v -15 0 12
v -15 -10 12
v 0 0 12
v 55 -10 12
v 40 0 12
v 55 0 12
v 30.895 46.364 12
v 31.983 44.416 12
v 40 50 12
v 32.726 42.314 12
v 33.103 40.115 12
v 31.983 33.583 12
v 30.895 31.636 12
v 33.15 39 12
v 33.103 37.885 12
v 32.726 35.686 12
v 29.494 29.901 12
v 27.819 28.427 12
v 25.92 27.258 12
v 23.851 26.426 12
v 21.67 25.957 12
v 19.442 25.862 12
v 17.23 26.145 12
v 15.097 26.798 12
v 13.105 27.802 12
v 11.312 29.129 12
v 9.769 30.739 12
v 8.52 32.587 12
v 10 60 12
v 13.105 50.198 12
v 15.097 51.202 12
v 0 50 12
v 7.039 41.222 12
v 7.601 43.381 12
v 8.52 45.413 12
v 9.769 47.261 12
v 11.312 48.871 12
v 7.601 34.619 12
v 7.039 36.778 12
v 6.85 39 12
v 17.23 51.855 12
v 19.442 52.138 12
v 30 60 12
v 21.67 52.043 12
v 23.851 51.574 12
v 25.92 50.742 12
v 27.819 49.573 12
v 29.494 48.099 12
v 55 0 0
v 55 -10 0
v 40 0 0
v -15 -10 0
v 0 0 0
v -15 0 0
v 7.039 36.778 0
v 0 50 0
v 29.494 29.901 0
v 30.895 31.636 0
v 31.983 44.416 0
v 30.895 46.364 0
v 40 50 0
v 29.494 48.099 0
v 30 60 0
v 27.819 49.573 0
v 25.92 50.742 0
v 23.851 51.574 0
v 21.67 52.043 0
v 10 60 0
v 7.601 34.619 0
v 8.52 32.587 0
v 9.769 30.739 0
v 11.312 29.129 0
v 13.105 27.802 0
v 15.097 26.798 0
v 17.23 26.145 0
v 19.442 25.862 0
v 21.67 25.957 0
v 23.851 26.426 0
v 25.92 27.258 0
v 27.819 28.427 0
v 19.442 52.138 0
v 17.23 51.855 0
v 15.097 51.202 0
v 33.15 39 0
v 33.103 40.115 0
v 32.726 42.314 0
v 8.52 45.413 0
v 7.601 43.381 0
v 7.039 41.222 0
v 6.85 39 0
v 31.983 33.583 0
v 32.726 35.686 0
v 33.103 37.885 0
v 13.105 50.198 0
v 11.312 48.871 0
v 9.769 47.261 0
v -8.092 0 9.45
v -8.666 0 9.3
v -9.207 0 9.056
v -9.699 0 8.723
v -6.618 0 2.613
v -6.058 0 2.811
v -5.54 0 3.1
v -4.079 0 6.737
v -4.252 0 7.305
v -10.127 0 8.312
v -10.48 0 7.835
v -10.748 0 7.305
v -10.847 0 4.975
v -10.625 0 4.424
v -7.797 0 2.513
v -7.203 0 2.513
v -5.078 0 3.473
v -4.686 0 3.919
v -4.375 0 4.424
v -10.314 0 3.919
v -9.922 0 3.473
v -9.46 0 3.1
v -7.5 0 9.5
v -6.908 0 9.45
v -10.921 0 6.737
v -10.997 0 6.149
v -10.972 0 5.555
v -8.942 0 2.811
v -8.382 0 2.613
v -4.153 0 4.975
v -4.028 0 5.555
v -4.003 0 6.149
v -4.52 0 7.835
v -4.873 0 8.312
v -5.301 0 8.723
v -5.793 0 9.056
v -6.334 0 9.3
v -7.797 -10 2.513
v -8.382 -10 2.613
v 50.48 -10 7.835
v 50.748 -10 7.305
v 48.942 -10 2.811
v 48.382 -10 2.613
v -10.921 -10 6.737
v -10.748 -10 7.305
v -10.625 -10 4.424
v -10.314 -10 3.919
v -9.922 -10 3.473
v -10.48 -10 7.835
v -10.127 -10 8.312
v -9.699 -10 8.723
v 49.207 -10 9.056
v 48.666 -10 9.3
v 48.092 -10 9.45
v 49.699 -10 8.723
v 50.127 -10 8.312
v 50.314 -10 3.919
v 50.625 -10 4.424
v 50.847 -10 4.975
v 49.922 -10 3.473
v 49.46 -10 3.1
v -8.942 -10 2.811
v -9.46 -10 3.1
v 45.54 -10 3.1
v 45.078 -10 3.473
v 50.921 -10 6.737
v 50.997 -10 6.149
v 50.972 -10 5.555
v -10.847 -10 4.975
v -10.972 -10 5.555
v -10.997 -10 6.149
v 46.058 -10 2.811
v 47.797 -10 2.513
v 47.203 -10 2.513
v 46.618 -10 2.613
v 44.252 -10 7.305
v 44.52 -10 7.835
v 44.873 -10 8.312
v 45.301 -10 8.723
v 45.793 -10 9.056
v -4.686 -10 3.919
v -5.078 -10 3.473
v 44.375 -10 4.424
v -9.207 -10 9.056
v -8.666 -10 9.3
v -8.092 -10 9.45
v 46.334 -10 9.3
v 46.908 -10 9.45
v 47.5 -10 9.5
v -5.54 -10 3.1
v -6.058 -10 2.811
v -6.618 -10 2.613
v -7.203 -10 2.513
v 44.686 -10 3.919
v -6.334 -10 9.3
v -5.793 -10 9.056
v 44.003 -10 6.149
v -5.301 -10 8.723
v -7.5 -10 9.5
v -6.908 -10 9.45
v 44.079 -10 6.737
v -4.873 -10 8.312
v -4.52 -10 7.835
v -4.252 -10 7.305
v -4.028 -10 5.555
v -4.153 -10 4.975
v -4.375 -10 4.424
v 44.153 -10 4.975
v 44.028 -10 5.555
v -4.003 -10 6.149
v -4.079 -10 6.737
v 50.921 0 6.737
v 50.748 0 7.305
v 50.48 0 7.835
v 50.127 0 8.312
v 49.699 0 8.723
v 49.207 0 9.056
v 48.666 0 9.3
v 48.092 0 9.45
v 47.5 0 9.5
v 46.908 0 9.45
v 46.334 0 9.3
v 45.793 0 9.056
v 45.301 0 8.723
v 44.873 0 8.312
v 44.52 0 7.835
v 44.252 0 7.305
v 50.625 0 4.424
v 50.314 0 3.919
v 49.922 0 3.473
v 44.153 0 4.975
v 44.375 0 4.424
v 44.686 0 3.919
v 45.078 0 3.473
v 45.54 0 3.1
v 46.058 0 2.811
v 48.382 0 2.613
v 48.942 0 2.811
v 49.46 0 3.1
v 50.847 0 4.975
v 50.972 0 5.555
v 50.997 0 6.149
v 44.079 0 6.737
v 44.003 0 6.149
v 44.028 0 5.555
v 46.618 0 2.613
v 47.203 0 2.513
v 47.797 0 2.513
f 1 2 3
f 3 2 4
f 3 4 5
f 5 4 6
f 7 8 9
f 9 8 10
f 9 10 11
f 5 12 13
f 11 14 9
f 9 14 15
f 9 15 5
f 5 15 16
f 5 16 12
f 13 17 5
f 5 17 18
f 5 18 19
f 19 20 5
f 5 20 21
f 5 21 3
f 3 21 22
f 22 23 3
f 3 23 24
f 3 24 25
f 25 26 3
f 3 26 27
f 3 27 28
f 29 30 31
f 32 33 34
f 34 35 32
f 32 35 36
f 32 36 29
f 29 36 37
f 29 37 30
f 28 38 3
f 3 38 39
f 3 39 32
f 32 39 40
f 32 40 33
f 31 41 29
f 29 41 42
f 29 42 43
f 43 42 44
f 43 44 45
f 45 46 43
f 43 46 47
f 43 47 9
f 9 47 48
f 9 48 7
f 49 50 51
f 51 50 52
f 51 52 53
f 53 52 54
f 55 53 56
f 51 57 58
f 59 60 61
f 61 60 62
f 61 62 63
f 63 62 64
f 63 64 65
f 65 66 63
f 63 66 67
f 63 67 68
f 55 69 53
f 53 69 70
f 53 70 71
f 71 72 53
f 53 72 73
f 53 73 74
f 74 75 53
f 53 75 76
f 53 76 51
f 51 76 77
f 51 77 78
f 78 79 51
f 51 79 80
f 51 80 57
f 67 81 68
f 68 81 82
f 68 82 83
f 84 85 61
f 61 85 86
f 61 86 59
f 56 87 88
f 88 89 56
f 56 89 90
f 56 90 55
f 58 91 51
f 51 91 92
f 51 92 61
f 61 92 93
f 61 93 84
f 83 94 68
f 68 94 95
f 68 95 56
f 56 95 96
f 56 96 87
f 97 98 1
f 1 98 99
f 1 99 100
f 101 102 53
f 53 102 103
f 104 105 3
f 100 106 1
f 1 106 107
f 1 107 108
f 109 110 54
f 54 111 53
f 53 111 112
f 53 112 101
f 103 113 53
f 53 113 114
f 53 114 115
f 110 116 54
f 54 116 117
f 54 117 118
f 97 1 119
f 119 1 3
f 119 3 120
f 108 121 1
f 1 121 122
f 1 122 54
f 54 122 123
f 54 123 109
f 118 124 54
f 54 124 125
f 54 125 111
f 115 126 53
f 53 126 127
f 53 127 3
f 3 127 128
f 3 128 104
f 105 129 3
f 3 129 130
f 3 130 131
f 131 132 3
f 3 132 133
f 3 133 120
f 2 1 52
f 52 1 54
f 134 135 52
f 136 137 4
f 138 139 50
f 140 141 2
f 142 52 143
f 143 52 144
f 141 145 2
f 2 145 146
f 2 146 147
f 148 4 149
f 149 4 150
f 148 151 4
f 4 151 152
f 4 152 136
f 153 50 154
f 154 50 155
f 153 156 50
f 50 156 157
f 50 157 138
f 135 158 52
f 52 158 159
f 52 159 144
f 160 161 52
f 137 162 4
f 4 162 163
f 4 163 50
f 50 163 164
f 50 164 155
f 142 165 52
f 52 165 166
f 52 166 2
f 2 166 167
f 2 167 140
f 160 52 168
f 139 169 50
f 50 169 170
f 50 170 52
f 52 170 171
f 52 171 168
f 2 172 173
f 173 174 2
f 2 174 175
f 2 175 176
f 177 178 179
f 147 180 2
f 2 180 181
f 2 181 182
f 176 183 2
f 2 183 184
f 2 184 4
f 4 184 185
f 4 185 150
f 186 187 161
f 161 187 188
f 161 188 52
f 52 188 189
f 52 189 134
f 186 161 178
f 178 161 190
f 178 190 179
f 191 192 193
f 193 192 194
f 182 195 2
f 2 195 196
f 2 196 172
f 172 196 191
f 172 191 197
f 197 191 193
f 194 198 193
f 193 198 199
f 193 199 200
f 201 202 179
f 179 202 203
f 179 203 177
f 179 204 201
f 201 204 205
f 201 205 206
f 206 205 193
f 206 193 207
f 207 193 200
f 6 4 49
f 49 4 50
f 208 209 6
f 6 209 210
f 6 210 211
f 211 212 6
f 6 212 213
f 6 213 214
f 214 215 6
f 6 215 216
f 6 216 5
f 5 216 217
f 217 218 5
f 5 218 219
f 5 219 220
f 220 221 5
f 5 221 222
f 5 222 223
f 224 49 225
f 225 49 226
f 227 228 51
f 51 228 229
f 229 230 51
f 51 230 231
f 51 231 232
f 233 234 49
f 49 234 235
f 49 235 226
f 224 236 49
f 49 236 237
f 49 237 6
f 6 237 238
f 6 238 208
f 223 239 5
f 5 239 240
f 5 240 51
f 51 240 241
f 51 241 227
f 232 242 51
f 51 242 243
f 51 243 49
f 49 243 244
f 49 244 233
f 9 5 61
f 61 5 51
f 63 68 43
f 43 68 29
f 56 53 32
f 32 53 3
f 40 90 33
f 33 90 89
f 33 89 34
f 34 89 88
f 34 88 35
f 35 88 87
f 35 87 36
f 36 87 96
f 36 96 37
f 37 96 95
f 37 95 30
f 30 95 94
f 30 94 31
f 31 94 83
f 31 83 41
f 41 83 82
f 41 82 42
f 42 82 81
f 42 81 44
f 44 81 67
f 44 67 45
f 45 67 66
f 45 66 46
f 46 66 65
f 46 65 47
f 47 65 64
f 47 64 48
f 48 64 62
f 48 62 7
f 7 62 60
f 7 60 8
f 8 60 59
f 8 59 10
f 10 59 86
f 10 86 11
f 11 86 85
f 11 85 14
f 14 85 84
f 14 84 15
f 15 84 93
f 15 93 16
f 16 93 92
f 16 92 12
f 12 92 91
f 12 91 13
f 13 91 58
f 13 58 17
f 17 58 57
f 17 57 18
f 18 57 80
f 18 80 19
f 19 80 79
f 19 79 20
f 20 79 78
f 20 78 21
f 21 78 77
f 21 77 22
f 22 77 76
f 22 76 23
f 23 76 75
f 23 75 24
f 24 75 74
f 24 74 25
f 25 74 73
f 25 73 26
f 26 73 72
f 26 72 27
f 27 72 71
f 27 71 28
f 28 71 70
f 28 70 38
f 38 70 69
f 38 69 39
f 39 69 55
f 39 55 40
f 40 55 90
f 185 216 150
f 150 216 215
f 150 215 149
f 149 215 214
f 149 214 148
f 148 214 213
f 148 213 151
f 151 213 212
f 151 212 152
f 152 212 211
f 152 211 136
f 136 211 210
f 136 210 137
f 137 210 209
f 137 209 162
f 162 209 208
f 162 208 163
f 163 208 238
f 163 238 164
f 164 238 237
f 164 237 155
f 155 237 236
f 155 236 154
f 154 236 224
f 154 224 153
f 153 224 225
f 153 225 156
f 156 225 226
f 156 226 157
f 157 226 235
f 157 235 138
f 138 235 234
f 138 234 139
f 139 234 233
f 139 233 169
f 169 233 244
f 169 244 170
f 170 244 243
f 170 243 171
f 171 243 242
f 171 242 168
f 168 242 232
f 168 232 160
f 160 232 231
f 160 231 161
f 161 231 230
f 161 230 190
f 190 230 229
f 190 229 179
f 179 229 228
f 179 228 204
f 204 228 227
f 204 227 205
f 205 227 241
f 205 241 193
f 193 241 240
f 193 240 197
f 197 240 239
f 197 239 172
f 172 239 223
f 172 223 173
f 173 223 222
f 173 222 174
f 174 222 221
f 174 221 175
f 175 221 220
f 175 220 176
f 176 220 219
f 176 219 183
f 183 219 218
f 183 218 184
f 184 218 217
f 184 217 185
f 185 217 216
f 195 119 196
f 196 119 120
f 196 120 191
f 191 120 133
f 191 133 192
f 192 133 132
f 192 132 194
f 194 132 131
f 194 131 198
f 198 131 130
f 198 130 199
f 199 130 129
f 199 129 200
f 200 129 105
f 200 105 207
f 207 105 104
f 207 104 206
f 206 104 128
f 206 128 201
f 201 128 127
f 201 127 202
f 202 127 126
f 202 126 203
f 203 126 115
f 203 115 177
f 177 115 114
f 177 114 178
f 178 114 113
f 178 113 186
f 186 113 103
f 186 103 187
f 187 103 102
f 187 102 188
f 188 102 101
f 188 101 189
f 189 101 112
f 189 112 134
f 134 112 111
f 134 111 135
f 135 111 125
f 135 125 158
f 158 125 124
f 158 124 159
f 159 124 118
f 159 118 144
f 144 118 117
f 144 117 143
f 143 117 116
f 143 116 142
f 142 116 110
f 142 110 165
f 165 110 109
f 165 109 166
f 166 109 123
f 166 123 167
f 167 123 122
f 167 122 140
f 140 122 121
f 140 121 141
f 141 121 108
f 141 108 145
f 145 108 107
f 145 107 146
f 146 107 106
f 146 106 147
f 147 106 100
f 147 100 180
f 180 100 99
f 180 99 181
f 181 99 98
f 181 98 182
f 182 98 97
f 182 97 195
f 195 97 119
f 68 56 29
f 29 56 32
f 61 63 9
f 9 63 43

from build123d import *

# Parameters (mm, degrees)
SKETCH_1_R          = 13.15
EXTRUDE_1_DEPTH     = 12
SKETCH_2_R          = 3.5
CUT_EXTRUDE_2_DEPTH = 83.273932688
SKETCH_3_R          = 3.5
CUT_EXTRUDE_3_DEPTH = 83.273932688
CHAMFER_1_SIZE      = 10
CHAMFER_2_SIZE      = 10


with BuildPart() as part:
    # 草圖1 → 填料-伸長1 (new body)
    with BuildSketch(Plane.XY):
        Polygon((40, 0), (55, 0), (55, -10), (-15, -10), (-15, 0), (0, 0), (0, 60), (40, 60), align=None)
        with Locations((20, 39)):
            Circle(SKETCH_1_R, mode=Mode.SUBTRACT)
    extrude(amount=EXTRUDE_1_DEPTH)

    # 草圖2 → 除料-伸長2 (cut, through all)
    with BuildSketch(Plane(origin=(0, 0, 0), x_dir=(1, 0, 0), z_dir=(0, 1, 0))):
        with Locations(Location((47.5, -6, 0), (0, 0, 270))):
            Circle(SKETCH_2_R)
    extrude(amount=-CUT_EXTRUDE_2_DEPTH, mode=Mode.SUBTRACT)

    # 草圖3 → 除料-伸長3 (cut, through all)
    with BuildSketch(Plane(origin=(0, 0, 0), x_dir=(1, 0, 0), z_dir=(0, 1, 0))):
        with Locations(Location((-7.5, -6, 0), (0, 0, 270))):
            Circle(SKETCH_3_R)
    extrude(amount=-CUT_EXTRUDE_3_DEPTH, mode=Mode.SUBTRACT)

    # 導角1
    chamfer_1_edges = [part.edges().sort_by_distance(p)[0] for p in [
        (0, 60, 6),
    ]]
    chamfer(chamfer_1_edges, length=CHAMFER_1_SIZE)

    # 導角2
    chamfer_2_edges = [part.edges().sort_by_distance(p)[0] for p in [
        (40, 60, 6),
    ]]
    chamfer(chamfer_2_edges, length=CHAMFER_2_SIZE)


solid = part.part
